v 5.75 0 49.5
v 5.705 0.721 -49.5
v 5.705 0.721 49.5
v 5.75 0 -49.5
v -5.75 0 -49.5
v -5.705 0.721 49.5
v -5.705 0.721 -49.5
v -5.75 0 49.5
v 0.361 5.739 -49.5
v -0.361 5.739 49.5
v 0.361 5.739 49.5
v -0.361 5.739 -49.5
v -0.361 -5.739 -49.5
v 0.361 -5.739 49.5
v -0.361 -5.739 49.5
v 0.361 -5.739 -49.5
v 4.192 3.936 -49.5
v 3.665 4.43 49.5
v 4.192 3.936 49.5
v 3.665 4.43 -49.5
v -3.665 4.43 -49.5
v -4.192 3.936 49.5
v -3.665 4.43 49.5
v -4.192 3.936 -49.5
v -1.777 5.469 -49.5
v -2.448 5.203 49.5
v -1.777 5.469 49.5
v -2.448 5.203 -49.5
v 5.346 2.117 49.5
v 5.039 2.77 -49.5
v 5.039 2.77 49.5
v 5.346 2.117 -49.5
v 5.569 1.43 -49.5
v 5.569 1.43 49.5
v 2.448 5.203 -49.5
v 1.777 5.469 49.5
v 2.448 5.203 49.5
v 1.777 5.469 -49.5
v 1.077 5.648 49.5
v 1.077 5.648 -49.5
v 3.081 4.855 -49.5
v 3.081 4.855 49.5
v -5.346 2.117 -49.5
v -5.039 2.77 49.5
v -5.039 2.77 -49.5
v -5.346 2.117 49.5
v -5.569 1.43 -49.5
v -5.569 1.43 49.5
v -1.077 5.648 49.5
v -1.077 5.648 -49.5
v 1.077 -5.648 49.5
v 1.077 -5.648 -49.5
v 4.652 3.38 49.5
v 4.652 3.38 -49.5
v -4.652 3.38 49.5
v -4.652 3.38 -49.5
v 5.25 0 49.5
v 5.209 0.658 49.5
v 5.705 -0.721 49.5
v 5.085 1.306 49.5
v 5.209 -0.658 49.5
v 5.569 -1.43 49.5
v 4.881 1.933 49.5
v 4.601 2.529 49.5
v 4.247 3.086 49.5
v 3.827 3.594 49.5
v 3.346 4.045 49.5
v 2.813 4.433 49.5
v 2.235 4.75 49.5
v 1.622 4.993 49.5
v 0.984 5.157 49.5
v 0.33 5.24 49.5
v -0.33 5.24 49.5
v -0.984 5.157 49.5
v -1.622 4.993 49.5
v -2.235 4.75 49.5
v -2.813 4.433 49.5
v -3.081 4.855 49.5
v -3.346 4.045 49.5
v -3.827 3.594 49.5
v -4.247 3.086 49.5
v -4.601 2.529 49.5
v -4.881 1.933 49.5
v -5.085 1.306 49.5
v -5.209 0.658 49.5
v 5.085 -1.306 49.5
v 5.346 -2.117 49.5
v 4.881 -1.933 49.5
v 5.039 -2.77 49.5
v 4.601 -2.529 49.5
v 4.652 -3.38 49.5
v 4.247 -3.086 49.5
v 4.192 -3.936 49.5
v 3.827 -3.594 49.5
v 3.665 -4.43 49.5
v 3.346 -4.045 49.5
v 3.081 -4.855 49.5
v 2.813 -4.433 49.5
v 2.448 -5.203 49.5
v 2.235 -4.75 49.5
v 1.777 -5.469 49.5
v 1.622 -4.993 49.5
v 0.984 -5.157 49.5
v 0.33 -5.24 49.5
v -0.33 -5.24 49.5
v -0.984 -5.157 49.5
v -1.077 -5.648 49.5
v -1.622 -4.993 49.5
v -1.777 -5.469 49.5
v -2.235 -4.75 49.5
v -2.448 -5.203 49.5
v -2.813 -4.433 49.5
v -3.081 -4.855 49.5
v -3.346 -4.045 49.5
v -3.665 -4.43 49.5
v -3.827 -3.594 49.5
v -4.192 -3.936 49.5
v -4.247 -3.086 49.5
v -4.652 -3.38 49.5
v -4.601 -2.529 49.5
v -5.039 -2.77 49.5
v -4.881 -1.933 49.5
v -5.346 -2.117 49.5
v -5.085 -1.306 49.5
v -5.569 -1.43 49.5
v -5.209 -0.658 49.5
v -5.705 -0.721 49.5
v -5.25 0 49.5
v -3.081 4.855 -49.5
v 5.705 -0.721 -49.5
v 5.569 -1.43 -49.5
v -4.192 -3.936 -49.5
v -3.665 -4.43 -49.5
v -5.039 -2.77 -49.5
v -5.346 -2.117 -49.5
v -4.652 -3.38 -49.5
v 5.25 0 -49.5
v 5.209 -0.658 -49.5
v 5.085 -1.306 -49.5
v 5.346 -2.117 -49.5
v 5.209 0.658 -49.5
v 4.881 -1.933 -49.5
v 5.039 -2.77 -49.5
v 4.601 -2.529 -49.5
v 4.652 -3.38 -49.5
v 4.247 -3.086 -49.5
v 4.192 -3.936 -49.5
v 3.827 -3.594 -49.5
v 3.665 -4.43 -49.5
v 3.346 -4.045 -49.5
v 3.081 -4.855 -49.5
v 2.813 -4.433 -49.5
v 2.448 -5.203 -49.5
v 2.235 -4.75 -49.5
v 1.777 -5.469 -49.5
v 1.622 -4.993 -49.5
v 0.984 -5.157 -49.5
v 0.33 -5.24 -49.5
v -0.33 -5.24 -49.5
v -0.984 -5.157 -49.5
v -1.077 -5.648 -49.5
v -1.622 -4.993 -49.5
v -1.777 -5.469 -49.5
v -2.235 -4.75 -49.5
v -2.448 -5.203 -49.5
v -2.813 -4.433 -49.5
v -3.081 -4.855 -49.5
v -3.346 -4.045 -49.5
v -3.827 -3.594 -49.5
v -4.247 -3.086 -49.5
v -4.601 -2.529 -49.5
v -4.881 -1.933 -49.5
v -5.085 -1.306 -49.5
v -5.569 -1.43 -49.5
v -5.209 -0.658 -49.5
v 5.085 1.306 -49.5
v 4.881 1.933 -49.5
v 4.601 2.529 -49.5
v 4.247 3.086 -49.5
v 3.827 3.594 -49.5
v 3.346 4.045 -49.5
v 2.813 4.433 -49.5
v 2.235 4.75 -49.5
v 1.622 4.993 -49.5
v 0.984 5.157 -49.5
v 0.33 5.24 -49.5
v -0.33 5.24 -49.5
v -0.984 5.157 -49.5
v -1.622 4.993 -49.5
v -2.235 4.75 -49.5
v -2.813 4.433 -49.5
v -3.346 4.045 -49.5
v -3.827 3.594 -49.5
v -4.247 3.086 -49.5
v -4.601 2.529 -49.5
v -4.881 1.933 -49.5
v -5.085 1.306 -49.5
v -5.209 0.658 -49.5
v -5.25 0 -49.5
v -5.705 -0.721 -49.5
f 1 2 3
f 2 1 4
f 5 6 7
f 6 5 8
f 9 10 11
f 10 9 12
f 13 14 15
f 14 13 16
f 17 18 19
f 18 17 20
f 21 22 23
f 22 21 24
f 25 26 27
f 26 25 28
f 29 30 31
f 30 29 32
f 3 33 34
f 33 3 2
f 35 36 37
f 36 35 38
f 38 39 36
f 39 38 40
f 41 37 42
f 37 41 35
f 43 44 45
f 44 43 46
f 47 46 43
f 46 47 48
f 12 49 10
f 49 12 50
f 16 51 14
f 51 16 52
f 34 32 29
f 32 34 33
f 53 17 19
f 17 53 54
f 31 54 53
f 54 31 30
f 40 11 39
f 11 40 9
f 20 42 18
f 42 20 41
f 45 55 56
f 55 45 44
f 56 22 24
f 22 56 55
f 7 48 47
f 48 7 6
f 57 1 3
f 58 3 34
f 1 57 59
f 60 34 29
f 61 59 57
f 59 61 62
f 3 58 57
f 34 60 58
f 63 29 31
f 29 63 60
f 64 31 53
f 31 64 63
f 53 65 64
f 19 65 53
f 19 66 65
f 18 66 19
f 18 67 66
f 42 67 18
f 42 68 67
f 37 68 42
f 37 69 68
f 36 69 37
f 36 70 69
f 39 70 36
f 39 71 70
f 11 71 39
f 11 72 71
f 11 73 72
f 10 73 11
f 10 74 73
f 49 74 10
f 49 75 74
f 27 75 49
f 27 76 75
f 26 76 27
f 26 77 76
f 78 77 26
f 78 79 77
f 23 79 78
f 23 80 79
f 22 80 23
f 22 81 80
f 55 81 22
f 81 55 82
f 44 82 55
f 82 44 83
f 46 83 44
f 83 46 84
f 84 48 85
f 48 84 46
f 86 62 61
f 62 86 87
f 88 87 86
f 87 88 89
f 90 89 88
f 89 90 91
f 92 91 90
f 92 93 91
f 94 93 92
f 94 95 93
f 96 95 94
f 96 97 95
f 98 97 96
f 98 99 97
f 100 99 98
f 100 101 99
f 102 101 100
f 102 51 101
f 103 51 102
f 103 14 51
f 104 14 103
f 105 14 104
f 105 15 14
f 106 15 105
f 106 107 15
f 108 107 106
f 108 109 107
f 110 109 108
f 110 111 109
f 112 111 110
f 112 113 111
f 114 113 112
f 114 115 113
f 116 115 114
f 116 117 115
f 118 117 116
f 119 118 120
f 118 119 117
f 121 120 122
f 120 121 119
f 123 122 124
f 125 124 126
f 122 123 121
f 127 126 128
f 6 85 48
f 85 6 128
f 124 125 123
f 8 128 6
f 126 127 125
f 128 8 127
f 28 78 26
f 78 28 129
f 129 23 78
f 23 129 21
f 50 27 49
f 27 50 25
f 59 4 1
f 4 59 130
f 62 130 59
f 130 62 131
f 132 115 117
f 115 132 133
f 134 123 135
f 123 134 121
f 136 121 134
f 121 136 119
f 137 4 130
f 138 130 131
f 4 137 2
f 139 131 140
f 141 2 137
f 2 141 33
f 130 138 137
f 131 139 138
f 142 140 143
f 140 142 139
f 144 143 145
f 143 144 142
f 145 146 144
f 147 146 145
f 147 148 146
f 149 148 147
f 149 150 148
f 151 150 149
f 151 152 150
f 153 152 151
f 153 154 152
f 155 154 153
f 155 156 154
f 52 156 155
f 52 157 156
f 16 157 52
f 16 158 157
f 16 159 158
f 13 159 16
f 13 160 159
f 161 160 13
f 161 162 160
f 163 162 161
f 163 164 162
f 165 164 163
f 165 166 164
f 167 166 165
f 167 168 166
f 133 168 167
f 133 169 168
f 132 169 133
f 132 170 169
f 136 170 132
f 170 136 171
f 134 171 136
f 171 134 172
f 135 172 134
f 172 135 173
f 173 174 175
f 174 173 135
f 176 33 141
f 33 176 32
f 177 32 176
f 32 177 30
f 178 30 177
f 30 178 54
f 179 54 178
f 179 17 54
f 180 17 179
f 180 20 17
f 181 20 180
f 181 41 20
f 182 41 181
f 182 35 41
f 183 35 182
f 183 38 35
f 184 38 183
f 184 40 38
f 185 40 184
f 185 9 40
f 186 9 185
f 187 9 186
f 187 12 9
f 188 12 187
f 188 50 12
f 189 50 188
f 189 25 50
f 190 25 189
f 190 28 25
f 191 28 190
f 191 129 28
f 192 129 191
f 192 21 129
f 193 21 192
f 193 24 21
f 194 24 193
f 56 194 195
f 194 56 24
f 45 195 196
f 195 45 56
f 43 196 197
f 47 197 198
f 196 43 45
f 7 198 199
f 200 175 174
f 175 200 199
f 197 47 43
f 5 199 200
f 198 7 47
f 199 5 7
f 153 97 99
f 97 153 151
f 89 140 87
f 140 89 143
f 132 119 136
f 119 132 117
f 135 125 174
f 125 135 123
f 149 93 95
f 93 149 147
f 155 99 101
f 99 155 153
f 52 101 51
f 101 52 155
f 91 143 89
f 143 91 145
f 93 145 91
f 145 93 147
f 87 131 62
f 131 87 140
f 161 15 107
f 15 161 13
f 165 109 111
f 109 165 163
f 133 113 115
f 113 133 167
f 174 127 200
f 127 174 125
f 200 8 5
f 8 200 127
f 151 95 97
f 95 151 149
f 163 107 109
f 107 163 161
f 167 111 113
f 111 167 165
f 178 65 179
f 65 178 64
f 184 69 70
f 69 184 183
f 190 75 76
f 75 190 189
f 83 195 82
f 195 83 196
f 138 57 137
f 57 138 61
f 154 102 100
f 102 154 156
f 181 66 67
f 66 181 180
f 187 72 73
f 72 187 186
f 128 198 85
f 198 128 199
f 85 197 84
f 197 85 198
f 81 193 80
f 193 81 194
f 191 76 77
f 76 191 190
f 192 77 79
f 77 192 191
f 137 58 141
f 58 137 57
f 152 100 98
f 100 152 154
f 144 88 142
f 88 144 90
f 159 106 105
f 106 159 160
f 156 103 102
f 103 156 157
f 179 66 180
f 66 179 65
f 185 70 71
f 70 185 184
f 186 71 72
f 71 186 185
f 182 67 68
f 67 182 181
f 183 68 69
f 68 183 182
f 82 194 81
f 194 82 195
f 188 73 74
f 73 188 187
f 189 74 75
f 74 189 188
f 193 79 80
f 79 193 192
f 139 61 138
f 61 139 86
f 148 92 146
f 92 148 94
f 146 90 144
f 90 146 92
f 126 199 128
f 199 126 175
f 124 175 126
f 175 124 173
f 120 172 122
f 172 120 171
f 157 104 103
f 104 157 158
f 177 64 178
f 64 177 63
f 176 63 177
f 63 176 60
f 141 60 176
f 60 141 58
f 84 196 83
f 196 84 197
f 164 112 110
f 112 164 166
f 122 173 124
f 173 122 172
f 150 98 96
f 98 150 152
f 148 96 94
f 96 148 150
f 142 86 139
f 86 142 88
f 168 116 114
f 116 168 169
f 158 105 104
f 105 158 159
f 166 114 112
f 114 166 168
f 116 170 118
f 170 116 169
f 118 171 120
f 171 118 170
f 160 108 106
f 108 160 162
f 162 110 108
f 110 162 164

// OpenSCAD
$fn = 50;


difference() {
	union() {
		translate(v = [0, 0, -49.5000000000]) {
			cylinder(h = 99, r = 5.7500000000);
		}
	}
	union() {
		translate(v = [0, 0, -100.0000000000]) {
			cylinder(h = 200, r = 5.2500000000);
		}
	}
}
